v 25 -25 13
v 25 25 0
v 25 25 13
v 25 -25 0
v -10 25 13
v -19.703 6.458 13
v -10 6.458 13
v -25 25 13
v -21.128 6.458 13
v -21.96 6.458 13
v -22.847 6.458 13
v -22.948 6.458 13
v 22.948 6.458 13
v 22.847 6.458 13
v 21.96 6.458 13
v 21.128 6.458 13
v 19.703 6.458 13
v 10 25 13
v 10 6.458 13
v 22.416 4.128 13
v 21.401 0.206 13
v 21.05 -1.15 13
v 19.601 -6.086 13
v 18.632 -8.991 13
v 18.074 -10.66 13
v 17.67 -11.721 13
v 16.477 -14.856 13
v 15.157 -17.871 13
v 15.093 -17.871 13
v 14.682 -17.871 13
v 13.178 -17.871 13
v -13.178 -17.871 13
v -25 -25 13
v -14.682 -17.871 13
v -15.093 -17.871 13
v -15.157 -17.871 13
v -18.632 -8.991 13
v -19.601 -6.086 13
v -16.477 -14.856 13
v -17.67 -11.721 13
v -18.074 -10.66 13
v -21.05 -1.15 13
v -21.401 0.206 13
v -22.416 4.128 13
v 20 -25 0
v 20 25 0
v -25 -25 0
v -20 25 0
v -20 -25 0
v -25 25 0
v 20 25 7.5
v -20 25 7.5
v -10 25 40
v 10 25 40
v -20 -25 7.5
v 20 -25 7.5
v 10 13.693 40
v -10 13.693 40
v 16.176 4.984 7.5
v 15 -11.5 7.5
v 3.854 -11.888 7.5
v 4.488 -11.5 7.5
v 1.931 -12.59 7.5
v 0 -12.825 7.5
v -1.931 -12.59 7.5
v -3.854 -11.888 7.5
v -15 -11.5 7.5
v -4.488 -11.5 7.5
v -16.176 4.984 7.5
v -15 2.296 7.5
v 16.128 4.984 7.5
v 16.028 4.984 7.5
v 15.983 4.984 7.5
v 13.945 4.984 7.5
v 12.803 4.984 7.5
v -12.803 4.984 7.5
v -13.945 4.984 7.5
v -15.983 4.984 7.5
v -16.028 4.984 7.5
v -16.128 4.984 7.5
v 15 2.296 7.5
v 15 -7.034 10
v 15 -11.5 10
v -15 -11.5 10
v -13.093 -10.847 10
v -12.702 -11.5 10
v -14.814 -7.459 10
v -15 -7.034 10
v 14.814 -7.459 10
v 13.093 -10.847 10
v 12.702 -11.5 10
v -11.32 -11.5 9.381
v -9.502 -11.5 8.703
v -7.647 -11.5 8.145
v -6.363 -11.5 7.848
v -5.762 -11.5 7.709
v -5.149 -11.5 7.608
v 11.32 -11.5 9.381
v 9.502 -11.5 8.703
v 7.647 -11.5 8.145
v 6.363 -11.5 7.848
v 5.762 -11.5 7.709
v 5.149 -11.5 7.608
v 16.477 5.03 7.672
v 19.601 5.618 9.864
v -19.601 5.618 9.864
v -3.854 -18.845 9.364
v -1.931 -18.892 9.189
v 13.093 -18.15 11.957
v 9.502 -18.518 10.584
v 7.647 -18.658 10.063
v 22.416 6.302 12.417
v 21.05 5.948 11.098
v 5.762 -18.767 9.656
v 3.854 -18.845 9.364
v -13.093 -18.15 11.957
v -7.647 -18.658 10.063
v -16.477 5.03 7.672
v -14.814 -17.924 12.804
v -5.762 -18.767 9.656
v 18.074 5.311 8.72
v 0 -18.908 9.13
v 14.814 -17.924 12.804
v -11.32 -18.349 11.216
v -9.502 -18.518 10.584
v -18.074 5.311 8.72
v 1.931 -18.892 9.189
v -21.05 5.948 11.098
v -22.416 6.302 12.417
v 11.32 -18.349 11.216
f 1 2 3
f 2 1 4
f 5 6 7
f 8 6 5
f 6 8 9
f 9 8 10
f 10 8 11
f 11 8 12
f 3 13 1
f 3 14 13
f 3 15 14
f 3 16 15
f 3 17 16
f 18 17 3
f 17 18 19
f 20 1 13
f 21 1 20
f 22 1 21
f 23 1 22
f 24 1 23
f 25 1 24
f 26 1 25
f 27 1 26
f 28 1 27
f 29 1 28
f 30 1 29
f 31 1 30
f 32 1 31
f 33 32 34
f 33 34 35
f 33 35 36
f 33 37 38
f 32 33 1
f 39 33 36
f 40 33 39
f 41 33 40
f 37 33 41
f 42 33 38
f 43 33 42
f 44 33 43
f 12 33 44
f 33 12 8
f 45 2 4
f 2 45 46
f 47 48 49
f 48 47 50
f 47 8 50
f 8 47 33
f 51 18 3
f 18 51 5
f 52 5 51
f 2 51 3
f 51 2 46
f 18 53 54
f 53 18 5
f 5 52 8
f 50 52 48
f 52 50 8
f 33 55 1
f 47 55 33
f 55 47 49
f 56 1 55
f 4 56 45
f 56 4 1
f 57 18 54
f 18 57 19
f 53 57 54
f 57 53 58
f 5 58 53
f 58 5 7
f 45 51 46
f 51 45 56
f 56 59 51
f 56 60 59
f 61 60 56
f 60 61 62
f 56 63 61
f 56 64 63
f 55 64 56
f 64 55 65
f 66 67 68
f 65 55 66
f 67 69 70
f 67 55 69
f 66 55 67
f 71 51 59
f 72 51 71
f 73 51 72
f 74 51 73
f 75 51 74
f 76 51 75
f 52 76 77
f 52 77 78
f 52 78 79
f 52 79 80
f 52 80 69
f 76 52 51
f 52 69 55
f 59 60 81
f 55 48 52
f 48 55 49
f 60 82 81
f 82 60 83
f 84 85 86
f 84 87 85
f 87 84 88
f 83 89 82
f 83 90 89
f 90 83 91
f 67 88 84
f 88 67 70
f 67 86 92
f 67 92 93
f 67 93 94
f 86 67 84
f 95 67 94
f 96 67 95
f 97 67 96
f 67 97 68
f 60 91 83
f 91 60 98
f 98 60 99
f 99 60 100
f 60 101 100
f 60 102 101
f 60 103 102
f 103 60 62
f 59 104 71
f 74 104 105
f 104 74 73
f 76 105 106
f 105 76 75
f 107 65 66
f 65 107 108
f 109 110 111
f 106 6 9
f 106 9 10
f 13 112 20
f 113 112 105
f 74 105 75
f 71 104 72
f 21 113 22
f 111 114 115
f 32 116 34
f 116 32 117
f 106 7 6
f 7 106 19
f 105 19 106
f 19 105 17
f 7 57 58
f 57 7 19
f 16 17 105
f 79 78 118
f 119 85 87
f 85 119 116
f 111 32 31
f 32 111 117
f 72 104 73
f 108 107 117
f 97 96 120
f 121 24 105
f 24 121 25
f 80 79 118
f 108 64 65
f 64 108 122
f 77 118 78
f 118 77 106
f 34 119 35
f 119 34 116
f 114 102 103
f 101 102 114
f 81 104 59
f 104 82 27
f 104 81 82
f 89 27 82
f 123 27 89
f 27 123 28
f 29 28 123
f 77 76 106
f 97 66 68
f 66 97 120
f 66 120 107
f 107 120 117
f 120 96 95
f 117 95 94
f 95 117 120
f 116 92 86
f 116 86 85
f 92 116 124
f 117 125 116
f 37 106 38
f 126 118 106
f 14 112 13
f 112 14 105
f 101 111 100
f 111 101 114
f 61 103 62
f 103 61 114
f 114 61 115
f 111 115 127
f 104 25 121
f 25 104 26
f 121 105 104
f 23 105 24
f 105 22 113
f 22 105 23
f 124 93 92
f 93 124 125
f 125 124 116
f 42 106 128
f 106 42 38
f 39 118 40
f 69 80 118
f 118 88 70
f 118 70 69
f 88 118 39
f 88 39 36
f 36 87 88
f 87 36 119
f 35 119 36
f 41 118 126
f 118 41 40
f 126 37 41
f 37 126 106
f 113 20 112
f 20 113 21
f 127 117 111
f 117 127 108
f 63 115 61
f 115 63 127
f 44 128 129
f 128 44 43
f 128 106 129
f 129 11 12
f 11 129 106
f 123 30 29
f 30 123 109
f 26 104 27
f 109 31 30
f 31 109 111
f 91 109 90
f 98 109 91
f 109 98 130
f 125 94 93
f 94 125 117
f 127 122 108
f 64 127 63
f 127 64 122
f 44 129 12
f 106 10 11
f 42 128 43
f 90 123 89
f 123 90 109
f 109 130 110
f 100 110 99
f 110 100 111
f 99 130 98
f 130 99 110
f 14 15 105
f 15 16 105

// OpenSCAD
difference() {
    union() {
        translate([0, 0, 13/2]) cube([50,50,13],true);
        translate([0, 25/2, 40/2]) cube([20,25,40],true);
    }
    translate([0, -5, 5/2]) cube([40,70,10],true);
    translate([0, -4, 5]) cube([30,15,10], true);
    #translate([0, 23.5/2, 61.5/2+2]) rotate([90-15,0,0]) cylinder(h=23.5, r=61.5/2, $fn=100);
}
